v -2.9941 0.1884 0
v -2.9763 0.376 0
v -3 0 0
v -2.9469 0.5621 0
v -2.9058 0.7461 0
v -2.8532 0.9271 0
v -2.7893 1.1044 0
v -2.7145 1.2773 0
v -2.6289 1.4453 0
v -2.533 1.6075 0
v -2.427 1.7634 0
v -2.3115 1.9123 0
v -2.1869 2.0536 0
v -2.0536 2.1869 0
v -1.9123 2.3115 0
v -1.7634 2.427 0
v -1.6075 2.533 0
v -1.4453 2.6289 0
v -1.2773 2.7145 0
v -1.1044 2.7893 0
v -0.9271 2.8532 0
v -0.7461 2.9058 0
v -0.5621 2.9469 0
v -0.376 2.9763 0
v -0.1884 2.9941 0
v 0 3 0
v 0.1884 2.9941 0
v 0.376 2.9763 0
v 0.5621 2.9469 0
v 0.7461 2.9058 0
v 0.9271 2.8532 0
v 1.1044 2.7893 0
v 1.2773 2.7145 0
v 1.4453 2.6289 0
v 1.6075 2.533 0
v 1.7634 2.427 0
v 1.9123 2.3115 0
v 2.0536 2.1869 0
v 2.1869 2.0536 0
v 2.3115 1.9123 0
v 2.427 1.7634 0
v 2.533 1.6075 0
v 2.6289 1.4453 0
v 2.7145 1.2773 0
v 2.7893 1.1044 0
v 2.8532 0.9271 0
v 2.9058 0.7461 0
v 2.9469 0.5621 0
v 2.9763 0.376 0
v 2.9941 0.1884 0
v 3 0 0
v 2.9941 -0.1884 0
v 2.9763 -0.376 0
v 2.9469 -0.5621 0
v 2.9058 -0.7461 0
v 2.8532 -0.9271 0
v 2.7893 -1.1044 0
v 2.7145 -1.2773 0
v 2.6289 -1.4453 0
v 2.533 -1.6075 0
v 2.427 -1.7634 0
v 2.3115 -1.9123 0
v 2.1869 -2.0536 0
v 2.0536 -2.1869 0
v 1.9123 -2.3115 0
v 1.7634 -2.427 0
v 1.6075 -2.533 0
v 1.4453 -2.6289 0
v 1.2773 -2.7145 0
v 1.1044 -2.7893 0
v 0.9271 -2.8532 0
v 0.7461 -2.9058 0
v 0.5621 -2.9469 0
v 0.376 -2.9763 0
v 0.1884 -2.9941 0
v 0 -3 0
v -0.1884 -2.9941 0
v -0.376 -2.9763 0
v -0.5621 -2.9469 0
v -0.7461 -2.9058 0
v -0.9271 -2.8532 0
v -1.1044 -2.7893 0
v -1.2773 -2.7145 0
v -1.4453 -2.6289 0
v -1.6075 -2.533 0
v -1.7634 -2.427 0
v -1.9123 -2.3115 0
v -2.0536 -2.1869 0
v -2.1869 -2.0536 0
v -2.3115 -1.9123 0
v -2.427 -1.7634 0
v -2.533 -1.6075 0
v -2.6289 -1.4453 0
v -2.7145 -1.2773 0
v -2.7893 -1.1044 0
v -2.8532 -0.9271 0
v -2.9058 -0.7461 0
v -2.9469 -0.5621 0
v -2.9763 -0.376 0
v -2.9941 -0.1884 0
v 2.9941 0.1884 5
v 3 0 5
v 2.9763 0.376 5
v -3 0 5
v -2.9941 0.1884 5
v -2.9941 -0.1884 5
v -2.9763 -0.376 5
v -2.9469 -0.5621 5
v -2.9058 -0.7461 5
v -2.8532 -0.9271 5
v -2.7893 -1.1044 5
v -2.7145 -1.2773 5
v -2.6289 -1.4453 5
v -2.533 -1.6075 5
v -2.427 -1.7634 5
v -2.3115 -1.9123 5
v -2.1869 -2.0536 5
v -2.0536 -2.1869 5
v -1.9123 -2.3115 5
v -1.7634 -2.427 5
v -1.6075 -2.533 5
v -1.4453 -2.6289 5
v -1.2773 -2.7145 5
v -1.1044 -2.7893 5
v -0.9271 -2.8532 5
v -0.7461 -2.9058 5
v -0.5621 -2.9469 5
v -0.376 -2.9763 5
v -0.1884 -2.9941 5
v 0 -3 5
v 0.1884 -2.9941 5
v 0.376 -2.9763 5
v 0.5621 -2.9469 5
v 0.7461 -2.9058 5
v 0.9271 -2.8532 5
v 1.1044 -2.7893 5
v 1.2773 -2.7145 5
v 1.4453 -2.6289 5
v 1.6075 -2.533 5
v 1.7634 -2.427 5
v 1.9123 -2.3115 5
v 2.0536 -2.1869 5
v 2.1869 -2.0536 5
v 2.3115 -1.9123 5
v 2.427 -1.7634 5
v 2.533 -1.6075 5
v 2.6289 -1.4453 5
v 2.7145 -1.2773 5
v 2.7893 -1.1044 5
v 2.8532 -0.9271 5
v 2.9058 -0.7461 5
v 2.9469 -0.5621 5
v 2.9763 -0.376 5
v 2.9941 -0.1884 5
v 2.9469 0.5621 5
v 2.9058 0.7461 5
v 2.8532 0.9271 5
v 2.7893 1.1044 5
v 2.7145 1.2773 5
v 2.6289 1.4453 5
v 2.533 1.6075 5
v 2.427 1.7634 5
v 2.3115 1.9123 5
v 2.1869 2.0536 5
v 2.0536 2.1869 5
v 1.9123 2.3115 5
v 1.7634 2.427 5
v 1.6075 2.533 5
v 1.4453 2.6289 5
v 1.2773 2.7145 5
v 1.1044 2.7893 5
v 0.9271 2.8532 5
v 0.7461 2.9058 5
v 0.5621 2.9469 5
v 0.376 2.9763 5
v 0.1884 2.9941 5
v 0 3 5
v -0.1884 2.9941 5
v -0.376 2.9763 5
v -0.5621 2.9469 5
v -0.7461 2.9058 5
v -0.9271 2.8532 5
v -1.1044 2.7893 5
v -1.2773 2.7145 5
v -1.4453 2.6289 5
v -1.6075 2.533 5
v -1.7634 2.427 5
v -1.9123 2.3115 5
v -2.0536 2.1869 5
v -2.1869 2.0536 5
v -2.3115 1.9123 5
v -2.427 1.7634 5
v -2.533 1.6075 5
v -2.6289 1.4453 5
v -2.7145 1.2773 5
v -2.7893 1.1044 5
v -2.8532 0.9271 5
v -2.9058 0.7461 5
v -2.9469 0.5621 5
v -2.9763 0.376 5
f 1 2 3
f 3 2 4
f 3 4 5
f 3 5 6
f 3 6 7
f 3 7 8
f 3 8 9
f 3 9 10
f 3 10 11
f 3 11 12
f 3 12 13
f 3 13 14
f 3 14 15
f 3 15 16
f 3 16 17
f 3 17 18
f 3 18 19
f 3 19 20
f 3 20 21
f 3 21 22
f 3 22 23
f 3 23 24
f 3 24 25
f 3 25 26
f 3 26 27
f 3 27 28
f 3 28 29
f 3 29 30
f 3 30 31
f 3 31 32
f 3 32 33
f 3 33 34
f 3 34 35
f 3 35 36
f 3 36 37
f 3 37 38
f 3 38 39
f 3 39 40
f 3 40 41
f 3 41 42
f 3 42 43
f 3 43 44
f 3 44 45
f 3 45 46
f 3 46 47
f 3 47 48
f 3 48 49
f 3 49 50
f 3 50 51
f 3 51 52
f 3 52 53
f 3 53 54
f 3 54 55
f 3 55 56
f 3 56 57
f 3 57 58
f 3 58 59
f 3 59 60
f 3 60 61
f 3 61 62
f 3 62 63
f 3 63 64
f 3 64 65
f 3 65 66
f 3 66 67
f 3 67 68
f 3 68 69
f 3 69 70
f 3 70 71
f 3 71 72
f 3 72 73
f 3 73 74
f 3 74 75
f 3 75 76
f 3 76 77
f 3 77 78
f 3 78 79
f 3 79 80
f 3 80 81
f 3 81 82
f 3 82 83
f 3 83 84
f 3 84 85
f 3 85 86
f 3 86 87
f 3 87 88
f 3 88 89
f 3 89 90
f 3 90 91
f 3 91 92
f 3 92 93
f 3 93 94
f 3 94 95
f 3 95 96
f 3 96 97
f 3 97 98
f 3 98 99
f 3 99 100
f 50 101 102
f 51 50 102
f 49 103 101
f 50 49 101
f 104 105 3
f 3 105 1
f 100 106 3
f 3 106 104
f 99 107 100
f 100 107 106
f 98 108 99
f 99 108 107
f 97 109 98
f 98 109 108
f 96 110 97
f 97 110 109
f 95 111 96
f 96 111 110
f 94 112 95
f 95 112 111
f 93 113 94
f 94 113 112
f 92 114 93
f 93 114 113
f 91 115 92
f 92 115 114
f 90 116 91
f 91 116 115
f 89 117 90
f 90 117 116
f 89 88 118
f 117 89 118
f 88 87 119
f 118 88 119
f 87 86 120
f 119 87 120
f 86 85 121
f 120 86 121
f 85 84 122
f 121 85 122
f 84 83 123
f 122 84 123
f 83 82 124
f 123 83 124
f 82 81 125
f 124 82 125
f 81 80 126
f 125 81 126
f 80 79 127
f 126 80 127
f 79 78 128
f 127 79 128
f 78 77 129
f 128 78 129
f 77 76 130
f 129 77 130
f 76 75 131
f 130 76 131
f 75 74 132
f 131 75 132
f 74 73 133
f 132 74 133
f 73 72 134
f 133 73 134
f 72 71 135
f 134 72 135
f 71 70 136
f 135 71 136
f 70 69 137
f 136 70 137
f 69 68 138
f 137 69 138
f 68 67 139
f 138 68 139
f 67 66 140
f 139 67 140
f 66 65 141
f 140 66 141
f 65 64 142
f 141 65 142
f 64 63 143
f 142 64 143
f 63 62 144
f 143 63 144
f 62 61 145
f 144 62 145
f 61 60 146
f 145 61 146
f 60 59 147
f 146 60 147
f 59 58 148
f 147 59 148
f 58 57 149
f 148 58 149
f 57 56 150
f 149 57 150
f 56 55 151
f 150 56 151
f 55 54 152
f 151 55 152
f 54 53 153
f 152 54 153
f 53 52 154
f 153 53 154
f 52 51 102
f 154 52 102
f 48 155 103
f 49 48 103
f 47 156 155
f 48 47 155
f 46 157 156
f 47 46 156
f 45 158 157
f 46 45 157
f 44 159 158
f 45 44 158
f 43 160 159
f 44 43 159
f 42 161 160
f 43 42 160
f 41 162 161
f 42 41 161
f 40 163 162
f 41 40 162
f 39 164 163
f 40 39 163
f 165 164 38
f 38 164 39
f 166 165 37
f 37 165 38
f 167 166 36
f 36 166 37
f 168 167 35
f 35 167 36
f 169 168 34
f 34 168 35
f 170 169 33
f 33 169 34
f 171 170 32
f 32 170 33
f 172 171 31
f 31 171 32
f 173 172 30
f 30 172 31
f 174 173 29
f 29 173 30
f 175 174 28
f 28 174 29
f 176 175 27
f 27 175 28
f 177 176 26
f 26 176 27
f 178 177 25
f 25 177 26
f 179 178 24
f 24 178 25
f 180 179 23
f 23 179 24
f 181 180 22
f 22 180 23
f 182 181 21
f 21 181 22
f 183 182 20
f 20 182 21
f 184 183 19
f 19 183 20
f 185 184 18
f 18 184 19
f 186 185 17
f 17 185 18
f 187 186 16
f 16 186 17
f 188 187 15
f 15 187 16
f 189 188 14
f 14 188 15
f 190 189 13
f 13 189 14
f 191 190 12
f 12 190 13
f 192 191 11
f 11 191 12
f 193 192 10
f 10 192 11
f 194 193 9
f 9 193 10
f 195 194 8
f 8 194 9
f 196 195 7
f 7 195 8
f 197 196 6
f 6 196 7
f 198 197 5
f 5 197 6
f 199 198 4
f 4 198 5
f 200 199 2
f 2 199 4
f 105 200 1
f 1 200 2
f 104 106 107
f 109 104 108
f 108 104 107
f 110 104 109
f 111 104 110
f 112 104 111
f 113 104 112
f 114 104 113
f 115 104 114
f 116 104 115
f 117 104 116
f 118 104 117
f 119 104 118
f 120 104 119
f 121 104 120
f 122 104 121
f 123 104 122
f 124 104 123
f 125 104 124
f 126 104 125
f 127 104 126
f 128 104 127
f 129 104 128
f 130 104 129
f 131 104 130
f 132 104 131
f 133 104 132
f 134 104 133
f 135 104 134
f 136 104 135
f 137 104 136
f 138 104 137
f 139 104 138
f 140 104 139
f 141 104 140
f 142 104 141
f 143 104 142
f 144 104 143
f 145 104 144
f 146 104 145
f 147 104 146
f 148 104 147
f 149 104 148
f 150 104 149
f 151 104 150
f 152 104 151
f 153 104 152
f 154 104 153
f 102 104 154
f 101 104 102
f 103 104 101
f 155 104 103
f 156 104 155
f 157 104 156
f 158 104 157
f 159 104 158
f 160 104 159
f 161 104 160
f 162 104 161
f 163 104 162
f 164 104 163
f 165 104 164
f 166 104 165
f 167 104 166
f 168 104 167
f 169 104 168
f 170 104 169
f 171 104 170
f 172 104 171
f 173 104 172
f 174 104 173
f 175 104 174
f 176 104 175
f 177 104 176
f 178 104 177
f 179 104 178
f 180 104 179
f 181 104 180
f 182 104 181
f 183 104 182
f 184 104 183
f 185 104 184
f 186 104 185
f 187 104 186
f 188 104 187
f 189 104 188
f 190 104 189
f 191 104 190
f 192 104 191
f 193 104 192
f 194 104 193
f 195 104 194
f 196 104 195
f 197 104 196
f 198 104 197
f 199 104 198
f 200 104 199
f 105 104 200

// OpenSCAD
/*
 * OpenSCAD Workshop Examples
 * Copyright (c) 2013 Anar Software LLC. < http://anars.com >
 *
 * This program is free software: you can redistribute it and/or modify it under
 * the terms of the GNU General Public License as published by the Free Software
 * Foundation, either version 3 of the License, or (at your option) any later
 * version.
 *
 * This program is distributed in the hope that it will be useful, but WITHOUT
 * ANY WARRANTY; without even the implied warranty of MERCHANTABILITY or FITNESS
 * FOR A PARTICULAR PURPOSE. See the GNU General Public License for more details.
 *
 * You should have received a copy of the GNU General Public License along with
 * this program. If not, see < http://www.gnu.org/licenses/ >
 *
 */
/*

Creates 3 unit radius, 5 unit height cylinder.

Parameters :

	cylinder(r = x, h = x);

*/

$fn = 100;

cylinder(r = 3, h = 5);
